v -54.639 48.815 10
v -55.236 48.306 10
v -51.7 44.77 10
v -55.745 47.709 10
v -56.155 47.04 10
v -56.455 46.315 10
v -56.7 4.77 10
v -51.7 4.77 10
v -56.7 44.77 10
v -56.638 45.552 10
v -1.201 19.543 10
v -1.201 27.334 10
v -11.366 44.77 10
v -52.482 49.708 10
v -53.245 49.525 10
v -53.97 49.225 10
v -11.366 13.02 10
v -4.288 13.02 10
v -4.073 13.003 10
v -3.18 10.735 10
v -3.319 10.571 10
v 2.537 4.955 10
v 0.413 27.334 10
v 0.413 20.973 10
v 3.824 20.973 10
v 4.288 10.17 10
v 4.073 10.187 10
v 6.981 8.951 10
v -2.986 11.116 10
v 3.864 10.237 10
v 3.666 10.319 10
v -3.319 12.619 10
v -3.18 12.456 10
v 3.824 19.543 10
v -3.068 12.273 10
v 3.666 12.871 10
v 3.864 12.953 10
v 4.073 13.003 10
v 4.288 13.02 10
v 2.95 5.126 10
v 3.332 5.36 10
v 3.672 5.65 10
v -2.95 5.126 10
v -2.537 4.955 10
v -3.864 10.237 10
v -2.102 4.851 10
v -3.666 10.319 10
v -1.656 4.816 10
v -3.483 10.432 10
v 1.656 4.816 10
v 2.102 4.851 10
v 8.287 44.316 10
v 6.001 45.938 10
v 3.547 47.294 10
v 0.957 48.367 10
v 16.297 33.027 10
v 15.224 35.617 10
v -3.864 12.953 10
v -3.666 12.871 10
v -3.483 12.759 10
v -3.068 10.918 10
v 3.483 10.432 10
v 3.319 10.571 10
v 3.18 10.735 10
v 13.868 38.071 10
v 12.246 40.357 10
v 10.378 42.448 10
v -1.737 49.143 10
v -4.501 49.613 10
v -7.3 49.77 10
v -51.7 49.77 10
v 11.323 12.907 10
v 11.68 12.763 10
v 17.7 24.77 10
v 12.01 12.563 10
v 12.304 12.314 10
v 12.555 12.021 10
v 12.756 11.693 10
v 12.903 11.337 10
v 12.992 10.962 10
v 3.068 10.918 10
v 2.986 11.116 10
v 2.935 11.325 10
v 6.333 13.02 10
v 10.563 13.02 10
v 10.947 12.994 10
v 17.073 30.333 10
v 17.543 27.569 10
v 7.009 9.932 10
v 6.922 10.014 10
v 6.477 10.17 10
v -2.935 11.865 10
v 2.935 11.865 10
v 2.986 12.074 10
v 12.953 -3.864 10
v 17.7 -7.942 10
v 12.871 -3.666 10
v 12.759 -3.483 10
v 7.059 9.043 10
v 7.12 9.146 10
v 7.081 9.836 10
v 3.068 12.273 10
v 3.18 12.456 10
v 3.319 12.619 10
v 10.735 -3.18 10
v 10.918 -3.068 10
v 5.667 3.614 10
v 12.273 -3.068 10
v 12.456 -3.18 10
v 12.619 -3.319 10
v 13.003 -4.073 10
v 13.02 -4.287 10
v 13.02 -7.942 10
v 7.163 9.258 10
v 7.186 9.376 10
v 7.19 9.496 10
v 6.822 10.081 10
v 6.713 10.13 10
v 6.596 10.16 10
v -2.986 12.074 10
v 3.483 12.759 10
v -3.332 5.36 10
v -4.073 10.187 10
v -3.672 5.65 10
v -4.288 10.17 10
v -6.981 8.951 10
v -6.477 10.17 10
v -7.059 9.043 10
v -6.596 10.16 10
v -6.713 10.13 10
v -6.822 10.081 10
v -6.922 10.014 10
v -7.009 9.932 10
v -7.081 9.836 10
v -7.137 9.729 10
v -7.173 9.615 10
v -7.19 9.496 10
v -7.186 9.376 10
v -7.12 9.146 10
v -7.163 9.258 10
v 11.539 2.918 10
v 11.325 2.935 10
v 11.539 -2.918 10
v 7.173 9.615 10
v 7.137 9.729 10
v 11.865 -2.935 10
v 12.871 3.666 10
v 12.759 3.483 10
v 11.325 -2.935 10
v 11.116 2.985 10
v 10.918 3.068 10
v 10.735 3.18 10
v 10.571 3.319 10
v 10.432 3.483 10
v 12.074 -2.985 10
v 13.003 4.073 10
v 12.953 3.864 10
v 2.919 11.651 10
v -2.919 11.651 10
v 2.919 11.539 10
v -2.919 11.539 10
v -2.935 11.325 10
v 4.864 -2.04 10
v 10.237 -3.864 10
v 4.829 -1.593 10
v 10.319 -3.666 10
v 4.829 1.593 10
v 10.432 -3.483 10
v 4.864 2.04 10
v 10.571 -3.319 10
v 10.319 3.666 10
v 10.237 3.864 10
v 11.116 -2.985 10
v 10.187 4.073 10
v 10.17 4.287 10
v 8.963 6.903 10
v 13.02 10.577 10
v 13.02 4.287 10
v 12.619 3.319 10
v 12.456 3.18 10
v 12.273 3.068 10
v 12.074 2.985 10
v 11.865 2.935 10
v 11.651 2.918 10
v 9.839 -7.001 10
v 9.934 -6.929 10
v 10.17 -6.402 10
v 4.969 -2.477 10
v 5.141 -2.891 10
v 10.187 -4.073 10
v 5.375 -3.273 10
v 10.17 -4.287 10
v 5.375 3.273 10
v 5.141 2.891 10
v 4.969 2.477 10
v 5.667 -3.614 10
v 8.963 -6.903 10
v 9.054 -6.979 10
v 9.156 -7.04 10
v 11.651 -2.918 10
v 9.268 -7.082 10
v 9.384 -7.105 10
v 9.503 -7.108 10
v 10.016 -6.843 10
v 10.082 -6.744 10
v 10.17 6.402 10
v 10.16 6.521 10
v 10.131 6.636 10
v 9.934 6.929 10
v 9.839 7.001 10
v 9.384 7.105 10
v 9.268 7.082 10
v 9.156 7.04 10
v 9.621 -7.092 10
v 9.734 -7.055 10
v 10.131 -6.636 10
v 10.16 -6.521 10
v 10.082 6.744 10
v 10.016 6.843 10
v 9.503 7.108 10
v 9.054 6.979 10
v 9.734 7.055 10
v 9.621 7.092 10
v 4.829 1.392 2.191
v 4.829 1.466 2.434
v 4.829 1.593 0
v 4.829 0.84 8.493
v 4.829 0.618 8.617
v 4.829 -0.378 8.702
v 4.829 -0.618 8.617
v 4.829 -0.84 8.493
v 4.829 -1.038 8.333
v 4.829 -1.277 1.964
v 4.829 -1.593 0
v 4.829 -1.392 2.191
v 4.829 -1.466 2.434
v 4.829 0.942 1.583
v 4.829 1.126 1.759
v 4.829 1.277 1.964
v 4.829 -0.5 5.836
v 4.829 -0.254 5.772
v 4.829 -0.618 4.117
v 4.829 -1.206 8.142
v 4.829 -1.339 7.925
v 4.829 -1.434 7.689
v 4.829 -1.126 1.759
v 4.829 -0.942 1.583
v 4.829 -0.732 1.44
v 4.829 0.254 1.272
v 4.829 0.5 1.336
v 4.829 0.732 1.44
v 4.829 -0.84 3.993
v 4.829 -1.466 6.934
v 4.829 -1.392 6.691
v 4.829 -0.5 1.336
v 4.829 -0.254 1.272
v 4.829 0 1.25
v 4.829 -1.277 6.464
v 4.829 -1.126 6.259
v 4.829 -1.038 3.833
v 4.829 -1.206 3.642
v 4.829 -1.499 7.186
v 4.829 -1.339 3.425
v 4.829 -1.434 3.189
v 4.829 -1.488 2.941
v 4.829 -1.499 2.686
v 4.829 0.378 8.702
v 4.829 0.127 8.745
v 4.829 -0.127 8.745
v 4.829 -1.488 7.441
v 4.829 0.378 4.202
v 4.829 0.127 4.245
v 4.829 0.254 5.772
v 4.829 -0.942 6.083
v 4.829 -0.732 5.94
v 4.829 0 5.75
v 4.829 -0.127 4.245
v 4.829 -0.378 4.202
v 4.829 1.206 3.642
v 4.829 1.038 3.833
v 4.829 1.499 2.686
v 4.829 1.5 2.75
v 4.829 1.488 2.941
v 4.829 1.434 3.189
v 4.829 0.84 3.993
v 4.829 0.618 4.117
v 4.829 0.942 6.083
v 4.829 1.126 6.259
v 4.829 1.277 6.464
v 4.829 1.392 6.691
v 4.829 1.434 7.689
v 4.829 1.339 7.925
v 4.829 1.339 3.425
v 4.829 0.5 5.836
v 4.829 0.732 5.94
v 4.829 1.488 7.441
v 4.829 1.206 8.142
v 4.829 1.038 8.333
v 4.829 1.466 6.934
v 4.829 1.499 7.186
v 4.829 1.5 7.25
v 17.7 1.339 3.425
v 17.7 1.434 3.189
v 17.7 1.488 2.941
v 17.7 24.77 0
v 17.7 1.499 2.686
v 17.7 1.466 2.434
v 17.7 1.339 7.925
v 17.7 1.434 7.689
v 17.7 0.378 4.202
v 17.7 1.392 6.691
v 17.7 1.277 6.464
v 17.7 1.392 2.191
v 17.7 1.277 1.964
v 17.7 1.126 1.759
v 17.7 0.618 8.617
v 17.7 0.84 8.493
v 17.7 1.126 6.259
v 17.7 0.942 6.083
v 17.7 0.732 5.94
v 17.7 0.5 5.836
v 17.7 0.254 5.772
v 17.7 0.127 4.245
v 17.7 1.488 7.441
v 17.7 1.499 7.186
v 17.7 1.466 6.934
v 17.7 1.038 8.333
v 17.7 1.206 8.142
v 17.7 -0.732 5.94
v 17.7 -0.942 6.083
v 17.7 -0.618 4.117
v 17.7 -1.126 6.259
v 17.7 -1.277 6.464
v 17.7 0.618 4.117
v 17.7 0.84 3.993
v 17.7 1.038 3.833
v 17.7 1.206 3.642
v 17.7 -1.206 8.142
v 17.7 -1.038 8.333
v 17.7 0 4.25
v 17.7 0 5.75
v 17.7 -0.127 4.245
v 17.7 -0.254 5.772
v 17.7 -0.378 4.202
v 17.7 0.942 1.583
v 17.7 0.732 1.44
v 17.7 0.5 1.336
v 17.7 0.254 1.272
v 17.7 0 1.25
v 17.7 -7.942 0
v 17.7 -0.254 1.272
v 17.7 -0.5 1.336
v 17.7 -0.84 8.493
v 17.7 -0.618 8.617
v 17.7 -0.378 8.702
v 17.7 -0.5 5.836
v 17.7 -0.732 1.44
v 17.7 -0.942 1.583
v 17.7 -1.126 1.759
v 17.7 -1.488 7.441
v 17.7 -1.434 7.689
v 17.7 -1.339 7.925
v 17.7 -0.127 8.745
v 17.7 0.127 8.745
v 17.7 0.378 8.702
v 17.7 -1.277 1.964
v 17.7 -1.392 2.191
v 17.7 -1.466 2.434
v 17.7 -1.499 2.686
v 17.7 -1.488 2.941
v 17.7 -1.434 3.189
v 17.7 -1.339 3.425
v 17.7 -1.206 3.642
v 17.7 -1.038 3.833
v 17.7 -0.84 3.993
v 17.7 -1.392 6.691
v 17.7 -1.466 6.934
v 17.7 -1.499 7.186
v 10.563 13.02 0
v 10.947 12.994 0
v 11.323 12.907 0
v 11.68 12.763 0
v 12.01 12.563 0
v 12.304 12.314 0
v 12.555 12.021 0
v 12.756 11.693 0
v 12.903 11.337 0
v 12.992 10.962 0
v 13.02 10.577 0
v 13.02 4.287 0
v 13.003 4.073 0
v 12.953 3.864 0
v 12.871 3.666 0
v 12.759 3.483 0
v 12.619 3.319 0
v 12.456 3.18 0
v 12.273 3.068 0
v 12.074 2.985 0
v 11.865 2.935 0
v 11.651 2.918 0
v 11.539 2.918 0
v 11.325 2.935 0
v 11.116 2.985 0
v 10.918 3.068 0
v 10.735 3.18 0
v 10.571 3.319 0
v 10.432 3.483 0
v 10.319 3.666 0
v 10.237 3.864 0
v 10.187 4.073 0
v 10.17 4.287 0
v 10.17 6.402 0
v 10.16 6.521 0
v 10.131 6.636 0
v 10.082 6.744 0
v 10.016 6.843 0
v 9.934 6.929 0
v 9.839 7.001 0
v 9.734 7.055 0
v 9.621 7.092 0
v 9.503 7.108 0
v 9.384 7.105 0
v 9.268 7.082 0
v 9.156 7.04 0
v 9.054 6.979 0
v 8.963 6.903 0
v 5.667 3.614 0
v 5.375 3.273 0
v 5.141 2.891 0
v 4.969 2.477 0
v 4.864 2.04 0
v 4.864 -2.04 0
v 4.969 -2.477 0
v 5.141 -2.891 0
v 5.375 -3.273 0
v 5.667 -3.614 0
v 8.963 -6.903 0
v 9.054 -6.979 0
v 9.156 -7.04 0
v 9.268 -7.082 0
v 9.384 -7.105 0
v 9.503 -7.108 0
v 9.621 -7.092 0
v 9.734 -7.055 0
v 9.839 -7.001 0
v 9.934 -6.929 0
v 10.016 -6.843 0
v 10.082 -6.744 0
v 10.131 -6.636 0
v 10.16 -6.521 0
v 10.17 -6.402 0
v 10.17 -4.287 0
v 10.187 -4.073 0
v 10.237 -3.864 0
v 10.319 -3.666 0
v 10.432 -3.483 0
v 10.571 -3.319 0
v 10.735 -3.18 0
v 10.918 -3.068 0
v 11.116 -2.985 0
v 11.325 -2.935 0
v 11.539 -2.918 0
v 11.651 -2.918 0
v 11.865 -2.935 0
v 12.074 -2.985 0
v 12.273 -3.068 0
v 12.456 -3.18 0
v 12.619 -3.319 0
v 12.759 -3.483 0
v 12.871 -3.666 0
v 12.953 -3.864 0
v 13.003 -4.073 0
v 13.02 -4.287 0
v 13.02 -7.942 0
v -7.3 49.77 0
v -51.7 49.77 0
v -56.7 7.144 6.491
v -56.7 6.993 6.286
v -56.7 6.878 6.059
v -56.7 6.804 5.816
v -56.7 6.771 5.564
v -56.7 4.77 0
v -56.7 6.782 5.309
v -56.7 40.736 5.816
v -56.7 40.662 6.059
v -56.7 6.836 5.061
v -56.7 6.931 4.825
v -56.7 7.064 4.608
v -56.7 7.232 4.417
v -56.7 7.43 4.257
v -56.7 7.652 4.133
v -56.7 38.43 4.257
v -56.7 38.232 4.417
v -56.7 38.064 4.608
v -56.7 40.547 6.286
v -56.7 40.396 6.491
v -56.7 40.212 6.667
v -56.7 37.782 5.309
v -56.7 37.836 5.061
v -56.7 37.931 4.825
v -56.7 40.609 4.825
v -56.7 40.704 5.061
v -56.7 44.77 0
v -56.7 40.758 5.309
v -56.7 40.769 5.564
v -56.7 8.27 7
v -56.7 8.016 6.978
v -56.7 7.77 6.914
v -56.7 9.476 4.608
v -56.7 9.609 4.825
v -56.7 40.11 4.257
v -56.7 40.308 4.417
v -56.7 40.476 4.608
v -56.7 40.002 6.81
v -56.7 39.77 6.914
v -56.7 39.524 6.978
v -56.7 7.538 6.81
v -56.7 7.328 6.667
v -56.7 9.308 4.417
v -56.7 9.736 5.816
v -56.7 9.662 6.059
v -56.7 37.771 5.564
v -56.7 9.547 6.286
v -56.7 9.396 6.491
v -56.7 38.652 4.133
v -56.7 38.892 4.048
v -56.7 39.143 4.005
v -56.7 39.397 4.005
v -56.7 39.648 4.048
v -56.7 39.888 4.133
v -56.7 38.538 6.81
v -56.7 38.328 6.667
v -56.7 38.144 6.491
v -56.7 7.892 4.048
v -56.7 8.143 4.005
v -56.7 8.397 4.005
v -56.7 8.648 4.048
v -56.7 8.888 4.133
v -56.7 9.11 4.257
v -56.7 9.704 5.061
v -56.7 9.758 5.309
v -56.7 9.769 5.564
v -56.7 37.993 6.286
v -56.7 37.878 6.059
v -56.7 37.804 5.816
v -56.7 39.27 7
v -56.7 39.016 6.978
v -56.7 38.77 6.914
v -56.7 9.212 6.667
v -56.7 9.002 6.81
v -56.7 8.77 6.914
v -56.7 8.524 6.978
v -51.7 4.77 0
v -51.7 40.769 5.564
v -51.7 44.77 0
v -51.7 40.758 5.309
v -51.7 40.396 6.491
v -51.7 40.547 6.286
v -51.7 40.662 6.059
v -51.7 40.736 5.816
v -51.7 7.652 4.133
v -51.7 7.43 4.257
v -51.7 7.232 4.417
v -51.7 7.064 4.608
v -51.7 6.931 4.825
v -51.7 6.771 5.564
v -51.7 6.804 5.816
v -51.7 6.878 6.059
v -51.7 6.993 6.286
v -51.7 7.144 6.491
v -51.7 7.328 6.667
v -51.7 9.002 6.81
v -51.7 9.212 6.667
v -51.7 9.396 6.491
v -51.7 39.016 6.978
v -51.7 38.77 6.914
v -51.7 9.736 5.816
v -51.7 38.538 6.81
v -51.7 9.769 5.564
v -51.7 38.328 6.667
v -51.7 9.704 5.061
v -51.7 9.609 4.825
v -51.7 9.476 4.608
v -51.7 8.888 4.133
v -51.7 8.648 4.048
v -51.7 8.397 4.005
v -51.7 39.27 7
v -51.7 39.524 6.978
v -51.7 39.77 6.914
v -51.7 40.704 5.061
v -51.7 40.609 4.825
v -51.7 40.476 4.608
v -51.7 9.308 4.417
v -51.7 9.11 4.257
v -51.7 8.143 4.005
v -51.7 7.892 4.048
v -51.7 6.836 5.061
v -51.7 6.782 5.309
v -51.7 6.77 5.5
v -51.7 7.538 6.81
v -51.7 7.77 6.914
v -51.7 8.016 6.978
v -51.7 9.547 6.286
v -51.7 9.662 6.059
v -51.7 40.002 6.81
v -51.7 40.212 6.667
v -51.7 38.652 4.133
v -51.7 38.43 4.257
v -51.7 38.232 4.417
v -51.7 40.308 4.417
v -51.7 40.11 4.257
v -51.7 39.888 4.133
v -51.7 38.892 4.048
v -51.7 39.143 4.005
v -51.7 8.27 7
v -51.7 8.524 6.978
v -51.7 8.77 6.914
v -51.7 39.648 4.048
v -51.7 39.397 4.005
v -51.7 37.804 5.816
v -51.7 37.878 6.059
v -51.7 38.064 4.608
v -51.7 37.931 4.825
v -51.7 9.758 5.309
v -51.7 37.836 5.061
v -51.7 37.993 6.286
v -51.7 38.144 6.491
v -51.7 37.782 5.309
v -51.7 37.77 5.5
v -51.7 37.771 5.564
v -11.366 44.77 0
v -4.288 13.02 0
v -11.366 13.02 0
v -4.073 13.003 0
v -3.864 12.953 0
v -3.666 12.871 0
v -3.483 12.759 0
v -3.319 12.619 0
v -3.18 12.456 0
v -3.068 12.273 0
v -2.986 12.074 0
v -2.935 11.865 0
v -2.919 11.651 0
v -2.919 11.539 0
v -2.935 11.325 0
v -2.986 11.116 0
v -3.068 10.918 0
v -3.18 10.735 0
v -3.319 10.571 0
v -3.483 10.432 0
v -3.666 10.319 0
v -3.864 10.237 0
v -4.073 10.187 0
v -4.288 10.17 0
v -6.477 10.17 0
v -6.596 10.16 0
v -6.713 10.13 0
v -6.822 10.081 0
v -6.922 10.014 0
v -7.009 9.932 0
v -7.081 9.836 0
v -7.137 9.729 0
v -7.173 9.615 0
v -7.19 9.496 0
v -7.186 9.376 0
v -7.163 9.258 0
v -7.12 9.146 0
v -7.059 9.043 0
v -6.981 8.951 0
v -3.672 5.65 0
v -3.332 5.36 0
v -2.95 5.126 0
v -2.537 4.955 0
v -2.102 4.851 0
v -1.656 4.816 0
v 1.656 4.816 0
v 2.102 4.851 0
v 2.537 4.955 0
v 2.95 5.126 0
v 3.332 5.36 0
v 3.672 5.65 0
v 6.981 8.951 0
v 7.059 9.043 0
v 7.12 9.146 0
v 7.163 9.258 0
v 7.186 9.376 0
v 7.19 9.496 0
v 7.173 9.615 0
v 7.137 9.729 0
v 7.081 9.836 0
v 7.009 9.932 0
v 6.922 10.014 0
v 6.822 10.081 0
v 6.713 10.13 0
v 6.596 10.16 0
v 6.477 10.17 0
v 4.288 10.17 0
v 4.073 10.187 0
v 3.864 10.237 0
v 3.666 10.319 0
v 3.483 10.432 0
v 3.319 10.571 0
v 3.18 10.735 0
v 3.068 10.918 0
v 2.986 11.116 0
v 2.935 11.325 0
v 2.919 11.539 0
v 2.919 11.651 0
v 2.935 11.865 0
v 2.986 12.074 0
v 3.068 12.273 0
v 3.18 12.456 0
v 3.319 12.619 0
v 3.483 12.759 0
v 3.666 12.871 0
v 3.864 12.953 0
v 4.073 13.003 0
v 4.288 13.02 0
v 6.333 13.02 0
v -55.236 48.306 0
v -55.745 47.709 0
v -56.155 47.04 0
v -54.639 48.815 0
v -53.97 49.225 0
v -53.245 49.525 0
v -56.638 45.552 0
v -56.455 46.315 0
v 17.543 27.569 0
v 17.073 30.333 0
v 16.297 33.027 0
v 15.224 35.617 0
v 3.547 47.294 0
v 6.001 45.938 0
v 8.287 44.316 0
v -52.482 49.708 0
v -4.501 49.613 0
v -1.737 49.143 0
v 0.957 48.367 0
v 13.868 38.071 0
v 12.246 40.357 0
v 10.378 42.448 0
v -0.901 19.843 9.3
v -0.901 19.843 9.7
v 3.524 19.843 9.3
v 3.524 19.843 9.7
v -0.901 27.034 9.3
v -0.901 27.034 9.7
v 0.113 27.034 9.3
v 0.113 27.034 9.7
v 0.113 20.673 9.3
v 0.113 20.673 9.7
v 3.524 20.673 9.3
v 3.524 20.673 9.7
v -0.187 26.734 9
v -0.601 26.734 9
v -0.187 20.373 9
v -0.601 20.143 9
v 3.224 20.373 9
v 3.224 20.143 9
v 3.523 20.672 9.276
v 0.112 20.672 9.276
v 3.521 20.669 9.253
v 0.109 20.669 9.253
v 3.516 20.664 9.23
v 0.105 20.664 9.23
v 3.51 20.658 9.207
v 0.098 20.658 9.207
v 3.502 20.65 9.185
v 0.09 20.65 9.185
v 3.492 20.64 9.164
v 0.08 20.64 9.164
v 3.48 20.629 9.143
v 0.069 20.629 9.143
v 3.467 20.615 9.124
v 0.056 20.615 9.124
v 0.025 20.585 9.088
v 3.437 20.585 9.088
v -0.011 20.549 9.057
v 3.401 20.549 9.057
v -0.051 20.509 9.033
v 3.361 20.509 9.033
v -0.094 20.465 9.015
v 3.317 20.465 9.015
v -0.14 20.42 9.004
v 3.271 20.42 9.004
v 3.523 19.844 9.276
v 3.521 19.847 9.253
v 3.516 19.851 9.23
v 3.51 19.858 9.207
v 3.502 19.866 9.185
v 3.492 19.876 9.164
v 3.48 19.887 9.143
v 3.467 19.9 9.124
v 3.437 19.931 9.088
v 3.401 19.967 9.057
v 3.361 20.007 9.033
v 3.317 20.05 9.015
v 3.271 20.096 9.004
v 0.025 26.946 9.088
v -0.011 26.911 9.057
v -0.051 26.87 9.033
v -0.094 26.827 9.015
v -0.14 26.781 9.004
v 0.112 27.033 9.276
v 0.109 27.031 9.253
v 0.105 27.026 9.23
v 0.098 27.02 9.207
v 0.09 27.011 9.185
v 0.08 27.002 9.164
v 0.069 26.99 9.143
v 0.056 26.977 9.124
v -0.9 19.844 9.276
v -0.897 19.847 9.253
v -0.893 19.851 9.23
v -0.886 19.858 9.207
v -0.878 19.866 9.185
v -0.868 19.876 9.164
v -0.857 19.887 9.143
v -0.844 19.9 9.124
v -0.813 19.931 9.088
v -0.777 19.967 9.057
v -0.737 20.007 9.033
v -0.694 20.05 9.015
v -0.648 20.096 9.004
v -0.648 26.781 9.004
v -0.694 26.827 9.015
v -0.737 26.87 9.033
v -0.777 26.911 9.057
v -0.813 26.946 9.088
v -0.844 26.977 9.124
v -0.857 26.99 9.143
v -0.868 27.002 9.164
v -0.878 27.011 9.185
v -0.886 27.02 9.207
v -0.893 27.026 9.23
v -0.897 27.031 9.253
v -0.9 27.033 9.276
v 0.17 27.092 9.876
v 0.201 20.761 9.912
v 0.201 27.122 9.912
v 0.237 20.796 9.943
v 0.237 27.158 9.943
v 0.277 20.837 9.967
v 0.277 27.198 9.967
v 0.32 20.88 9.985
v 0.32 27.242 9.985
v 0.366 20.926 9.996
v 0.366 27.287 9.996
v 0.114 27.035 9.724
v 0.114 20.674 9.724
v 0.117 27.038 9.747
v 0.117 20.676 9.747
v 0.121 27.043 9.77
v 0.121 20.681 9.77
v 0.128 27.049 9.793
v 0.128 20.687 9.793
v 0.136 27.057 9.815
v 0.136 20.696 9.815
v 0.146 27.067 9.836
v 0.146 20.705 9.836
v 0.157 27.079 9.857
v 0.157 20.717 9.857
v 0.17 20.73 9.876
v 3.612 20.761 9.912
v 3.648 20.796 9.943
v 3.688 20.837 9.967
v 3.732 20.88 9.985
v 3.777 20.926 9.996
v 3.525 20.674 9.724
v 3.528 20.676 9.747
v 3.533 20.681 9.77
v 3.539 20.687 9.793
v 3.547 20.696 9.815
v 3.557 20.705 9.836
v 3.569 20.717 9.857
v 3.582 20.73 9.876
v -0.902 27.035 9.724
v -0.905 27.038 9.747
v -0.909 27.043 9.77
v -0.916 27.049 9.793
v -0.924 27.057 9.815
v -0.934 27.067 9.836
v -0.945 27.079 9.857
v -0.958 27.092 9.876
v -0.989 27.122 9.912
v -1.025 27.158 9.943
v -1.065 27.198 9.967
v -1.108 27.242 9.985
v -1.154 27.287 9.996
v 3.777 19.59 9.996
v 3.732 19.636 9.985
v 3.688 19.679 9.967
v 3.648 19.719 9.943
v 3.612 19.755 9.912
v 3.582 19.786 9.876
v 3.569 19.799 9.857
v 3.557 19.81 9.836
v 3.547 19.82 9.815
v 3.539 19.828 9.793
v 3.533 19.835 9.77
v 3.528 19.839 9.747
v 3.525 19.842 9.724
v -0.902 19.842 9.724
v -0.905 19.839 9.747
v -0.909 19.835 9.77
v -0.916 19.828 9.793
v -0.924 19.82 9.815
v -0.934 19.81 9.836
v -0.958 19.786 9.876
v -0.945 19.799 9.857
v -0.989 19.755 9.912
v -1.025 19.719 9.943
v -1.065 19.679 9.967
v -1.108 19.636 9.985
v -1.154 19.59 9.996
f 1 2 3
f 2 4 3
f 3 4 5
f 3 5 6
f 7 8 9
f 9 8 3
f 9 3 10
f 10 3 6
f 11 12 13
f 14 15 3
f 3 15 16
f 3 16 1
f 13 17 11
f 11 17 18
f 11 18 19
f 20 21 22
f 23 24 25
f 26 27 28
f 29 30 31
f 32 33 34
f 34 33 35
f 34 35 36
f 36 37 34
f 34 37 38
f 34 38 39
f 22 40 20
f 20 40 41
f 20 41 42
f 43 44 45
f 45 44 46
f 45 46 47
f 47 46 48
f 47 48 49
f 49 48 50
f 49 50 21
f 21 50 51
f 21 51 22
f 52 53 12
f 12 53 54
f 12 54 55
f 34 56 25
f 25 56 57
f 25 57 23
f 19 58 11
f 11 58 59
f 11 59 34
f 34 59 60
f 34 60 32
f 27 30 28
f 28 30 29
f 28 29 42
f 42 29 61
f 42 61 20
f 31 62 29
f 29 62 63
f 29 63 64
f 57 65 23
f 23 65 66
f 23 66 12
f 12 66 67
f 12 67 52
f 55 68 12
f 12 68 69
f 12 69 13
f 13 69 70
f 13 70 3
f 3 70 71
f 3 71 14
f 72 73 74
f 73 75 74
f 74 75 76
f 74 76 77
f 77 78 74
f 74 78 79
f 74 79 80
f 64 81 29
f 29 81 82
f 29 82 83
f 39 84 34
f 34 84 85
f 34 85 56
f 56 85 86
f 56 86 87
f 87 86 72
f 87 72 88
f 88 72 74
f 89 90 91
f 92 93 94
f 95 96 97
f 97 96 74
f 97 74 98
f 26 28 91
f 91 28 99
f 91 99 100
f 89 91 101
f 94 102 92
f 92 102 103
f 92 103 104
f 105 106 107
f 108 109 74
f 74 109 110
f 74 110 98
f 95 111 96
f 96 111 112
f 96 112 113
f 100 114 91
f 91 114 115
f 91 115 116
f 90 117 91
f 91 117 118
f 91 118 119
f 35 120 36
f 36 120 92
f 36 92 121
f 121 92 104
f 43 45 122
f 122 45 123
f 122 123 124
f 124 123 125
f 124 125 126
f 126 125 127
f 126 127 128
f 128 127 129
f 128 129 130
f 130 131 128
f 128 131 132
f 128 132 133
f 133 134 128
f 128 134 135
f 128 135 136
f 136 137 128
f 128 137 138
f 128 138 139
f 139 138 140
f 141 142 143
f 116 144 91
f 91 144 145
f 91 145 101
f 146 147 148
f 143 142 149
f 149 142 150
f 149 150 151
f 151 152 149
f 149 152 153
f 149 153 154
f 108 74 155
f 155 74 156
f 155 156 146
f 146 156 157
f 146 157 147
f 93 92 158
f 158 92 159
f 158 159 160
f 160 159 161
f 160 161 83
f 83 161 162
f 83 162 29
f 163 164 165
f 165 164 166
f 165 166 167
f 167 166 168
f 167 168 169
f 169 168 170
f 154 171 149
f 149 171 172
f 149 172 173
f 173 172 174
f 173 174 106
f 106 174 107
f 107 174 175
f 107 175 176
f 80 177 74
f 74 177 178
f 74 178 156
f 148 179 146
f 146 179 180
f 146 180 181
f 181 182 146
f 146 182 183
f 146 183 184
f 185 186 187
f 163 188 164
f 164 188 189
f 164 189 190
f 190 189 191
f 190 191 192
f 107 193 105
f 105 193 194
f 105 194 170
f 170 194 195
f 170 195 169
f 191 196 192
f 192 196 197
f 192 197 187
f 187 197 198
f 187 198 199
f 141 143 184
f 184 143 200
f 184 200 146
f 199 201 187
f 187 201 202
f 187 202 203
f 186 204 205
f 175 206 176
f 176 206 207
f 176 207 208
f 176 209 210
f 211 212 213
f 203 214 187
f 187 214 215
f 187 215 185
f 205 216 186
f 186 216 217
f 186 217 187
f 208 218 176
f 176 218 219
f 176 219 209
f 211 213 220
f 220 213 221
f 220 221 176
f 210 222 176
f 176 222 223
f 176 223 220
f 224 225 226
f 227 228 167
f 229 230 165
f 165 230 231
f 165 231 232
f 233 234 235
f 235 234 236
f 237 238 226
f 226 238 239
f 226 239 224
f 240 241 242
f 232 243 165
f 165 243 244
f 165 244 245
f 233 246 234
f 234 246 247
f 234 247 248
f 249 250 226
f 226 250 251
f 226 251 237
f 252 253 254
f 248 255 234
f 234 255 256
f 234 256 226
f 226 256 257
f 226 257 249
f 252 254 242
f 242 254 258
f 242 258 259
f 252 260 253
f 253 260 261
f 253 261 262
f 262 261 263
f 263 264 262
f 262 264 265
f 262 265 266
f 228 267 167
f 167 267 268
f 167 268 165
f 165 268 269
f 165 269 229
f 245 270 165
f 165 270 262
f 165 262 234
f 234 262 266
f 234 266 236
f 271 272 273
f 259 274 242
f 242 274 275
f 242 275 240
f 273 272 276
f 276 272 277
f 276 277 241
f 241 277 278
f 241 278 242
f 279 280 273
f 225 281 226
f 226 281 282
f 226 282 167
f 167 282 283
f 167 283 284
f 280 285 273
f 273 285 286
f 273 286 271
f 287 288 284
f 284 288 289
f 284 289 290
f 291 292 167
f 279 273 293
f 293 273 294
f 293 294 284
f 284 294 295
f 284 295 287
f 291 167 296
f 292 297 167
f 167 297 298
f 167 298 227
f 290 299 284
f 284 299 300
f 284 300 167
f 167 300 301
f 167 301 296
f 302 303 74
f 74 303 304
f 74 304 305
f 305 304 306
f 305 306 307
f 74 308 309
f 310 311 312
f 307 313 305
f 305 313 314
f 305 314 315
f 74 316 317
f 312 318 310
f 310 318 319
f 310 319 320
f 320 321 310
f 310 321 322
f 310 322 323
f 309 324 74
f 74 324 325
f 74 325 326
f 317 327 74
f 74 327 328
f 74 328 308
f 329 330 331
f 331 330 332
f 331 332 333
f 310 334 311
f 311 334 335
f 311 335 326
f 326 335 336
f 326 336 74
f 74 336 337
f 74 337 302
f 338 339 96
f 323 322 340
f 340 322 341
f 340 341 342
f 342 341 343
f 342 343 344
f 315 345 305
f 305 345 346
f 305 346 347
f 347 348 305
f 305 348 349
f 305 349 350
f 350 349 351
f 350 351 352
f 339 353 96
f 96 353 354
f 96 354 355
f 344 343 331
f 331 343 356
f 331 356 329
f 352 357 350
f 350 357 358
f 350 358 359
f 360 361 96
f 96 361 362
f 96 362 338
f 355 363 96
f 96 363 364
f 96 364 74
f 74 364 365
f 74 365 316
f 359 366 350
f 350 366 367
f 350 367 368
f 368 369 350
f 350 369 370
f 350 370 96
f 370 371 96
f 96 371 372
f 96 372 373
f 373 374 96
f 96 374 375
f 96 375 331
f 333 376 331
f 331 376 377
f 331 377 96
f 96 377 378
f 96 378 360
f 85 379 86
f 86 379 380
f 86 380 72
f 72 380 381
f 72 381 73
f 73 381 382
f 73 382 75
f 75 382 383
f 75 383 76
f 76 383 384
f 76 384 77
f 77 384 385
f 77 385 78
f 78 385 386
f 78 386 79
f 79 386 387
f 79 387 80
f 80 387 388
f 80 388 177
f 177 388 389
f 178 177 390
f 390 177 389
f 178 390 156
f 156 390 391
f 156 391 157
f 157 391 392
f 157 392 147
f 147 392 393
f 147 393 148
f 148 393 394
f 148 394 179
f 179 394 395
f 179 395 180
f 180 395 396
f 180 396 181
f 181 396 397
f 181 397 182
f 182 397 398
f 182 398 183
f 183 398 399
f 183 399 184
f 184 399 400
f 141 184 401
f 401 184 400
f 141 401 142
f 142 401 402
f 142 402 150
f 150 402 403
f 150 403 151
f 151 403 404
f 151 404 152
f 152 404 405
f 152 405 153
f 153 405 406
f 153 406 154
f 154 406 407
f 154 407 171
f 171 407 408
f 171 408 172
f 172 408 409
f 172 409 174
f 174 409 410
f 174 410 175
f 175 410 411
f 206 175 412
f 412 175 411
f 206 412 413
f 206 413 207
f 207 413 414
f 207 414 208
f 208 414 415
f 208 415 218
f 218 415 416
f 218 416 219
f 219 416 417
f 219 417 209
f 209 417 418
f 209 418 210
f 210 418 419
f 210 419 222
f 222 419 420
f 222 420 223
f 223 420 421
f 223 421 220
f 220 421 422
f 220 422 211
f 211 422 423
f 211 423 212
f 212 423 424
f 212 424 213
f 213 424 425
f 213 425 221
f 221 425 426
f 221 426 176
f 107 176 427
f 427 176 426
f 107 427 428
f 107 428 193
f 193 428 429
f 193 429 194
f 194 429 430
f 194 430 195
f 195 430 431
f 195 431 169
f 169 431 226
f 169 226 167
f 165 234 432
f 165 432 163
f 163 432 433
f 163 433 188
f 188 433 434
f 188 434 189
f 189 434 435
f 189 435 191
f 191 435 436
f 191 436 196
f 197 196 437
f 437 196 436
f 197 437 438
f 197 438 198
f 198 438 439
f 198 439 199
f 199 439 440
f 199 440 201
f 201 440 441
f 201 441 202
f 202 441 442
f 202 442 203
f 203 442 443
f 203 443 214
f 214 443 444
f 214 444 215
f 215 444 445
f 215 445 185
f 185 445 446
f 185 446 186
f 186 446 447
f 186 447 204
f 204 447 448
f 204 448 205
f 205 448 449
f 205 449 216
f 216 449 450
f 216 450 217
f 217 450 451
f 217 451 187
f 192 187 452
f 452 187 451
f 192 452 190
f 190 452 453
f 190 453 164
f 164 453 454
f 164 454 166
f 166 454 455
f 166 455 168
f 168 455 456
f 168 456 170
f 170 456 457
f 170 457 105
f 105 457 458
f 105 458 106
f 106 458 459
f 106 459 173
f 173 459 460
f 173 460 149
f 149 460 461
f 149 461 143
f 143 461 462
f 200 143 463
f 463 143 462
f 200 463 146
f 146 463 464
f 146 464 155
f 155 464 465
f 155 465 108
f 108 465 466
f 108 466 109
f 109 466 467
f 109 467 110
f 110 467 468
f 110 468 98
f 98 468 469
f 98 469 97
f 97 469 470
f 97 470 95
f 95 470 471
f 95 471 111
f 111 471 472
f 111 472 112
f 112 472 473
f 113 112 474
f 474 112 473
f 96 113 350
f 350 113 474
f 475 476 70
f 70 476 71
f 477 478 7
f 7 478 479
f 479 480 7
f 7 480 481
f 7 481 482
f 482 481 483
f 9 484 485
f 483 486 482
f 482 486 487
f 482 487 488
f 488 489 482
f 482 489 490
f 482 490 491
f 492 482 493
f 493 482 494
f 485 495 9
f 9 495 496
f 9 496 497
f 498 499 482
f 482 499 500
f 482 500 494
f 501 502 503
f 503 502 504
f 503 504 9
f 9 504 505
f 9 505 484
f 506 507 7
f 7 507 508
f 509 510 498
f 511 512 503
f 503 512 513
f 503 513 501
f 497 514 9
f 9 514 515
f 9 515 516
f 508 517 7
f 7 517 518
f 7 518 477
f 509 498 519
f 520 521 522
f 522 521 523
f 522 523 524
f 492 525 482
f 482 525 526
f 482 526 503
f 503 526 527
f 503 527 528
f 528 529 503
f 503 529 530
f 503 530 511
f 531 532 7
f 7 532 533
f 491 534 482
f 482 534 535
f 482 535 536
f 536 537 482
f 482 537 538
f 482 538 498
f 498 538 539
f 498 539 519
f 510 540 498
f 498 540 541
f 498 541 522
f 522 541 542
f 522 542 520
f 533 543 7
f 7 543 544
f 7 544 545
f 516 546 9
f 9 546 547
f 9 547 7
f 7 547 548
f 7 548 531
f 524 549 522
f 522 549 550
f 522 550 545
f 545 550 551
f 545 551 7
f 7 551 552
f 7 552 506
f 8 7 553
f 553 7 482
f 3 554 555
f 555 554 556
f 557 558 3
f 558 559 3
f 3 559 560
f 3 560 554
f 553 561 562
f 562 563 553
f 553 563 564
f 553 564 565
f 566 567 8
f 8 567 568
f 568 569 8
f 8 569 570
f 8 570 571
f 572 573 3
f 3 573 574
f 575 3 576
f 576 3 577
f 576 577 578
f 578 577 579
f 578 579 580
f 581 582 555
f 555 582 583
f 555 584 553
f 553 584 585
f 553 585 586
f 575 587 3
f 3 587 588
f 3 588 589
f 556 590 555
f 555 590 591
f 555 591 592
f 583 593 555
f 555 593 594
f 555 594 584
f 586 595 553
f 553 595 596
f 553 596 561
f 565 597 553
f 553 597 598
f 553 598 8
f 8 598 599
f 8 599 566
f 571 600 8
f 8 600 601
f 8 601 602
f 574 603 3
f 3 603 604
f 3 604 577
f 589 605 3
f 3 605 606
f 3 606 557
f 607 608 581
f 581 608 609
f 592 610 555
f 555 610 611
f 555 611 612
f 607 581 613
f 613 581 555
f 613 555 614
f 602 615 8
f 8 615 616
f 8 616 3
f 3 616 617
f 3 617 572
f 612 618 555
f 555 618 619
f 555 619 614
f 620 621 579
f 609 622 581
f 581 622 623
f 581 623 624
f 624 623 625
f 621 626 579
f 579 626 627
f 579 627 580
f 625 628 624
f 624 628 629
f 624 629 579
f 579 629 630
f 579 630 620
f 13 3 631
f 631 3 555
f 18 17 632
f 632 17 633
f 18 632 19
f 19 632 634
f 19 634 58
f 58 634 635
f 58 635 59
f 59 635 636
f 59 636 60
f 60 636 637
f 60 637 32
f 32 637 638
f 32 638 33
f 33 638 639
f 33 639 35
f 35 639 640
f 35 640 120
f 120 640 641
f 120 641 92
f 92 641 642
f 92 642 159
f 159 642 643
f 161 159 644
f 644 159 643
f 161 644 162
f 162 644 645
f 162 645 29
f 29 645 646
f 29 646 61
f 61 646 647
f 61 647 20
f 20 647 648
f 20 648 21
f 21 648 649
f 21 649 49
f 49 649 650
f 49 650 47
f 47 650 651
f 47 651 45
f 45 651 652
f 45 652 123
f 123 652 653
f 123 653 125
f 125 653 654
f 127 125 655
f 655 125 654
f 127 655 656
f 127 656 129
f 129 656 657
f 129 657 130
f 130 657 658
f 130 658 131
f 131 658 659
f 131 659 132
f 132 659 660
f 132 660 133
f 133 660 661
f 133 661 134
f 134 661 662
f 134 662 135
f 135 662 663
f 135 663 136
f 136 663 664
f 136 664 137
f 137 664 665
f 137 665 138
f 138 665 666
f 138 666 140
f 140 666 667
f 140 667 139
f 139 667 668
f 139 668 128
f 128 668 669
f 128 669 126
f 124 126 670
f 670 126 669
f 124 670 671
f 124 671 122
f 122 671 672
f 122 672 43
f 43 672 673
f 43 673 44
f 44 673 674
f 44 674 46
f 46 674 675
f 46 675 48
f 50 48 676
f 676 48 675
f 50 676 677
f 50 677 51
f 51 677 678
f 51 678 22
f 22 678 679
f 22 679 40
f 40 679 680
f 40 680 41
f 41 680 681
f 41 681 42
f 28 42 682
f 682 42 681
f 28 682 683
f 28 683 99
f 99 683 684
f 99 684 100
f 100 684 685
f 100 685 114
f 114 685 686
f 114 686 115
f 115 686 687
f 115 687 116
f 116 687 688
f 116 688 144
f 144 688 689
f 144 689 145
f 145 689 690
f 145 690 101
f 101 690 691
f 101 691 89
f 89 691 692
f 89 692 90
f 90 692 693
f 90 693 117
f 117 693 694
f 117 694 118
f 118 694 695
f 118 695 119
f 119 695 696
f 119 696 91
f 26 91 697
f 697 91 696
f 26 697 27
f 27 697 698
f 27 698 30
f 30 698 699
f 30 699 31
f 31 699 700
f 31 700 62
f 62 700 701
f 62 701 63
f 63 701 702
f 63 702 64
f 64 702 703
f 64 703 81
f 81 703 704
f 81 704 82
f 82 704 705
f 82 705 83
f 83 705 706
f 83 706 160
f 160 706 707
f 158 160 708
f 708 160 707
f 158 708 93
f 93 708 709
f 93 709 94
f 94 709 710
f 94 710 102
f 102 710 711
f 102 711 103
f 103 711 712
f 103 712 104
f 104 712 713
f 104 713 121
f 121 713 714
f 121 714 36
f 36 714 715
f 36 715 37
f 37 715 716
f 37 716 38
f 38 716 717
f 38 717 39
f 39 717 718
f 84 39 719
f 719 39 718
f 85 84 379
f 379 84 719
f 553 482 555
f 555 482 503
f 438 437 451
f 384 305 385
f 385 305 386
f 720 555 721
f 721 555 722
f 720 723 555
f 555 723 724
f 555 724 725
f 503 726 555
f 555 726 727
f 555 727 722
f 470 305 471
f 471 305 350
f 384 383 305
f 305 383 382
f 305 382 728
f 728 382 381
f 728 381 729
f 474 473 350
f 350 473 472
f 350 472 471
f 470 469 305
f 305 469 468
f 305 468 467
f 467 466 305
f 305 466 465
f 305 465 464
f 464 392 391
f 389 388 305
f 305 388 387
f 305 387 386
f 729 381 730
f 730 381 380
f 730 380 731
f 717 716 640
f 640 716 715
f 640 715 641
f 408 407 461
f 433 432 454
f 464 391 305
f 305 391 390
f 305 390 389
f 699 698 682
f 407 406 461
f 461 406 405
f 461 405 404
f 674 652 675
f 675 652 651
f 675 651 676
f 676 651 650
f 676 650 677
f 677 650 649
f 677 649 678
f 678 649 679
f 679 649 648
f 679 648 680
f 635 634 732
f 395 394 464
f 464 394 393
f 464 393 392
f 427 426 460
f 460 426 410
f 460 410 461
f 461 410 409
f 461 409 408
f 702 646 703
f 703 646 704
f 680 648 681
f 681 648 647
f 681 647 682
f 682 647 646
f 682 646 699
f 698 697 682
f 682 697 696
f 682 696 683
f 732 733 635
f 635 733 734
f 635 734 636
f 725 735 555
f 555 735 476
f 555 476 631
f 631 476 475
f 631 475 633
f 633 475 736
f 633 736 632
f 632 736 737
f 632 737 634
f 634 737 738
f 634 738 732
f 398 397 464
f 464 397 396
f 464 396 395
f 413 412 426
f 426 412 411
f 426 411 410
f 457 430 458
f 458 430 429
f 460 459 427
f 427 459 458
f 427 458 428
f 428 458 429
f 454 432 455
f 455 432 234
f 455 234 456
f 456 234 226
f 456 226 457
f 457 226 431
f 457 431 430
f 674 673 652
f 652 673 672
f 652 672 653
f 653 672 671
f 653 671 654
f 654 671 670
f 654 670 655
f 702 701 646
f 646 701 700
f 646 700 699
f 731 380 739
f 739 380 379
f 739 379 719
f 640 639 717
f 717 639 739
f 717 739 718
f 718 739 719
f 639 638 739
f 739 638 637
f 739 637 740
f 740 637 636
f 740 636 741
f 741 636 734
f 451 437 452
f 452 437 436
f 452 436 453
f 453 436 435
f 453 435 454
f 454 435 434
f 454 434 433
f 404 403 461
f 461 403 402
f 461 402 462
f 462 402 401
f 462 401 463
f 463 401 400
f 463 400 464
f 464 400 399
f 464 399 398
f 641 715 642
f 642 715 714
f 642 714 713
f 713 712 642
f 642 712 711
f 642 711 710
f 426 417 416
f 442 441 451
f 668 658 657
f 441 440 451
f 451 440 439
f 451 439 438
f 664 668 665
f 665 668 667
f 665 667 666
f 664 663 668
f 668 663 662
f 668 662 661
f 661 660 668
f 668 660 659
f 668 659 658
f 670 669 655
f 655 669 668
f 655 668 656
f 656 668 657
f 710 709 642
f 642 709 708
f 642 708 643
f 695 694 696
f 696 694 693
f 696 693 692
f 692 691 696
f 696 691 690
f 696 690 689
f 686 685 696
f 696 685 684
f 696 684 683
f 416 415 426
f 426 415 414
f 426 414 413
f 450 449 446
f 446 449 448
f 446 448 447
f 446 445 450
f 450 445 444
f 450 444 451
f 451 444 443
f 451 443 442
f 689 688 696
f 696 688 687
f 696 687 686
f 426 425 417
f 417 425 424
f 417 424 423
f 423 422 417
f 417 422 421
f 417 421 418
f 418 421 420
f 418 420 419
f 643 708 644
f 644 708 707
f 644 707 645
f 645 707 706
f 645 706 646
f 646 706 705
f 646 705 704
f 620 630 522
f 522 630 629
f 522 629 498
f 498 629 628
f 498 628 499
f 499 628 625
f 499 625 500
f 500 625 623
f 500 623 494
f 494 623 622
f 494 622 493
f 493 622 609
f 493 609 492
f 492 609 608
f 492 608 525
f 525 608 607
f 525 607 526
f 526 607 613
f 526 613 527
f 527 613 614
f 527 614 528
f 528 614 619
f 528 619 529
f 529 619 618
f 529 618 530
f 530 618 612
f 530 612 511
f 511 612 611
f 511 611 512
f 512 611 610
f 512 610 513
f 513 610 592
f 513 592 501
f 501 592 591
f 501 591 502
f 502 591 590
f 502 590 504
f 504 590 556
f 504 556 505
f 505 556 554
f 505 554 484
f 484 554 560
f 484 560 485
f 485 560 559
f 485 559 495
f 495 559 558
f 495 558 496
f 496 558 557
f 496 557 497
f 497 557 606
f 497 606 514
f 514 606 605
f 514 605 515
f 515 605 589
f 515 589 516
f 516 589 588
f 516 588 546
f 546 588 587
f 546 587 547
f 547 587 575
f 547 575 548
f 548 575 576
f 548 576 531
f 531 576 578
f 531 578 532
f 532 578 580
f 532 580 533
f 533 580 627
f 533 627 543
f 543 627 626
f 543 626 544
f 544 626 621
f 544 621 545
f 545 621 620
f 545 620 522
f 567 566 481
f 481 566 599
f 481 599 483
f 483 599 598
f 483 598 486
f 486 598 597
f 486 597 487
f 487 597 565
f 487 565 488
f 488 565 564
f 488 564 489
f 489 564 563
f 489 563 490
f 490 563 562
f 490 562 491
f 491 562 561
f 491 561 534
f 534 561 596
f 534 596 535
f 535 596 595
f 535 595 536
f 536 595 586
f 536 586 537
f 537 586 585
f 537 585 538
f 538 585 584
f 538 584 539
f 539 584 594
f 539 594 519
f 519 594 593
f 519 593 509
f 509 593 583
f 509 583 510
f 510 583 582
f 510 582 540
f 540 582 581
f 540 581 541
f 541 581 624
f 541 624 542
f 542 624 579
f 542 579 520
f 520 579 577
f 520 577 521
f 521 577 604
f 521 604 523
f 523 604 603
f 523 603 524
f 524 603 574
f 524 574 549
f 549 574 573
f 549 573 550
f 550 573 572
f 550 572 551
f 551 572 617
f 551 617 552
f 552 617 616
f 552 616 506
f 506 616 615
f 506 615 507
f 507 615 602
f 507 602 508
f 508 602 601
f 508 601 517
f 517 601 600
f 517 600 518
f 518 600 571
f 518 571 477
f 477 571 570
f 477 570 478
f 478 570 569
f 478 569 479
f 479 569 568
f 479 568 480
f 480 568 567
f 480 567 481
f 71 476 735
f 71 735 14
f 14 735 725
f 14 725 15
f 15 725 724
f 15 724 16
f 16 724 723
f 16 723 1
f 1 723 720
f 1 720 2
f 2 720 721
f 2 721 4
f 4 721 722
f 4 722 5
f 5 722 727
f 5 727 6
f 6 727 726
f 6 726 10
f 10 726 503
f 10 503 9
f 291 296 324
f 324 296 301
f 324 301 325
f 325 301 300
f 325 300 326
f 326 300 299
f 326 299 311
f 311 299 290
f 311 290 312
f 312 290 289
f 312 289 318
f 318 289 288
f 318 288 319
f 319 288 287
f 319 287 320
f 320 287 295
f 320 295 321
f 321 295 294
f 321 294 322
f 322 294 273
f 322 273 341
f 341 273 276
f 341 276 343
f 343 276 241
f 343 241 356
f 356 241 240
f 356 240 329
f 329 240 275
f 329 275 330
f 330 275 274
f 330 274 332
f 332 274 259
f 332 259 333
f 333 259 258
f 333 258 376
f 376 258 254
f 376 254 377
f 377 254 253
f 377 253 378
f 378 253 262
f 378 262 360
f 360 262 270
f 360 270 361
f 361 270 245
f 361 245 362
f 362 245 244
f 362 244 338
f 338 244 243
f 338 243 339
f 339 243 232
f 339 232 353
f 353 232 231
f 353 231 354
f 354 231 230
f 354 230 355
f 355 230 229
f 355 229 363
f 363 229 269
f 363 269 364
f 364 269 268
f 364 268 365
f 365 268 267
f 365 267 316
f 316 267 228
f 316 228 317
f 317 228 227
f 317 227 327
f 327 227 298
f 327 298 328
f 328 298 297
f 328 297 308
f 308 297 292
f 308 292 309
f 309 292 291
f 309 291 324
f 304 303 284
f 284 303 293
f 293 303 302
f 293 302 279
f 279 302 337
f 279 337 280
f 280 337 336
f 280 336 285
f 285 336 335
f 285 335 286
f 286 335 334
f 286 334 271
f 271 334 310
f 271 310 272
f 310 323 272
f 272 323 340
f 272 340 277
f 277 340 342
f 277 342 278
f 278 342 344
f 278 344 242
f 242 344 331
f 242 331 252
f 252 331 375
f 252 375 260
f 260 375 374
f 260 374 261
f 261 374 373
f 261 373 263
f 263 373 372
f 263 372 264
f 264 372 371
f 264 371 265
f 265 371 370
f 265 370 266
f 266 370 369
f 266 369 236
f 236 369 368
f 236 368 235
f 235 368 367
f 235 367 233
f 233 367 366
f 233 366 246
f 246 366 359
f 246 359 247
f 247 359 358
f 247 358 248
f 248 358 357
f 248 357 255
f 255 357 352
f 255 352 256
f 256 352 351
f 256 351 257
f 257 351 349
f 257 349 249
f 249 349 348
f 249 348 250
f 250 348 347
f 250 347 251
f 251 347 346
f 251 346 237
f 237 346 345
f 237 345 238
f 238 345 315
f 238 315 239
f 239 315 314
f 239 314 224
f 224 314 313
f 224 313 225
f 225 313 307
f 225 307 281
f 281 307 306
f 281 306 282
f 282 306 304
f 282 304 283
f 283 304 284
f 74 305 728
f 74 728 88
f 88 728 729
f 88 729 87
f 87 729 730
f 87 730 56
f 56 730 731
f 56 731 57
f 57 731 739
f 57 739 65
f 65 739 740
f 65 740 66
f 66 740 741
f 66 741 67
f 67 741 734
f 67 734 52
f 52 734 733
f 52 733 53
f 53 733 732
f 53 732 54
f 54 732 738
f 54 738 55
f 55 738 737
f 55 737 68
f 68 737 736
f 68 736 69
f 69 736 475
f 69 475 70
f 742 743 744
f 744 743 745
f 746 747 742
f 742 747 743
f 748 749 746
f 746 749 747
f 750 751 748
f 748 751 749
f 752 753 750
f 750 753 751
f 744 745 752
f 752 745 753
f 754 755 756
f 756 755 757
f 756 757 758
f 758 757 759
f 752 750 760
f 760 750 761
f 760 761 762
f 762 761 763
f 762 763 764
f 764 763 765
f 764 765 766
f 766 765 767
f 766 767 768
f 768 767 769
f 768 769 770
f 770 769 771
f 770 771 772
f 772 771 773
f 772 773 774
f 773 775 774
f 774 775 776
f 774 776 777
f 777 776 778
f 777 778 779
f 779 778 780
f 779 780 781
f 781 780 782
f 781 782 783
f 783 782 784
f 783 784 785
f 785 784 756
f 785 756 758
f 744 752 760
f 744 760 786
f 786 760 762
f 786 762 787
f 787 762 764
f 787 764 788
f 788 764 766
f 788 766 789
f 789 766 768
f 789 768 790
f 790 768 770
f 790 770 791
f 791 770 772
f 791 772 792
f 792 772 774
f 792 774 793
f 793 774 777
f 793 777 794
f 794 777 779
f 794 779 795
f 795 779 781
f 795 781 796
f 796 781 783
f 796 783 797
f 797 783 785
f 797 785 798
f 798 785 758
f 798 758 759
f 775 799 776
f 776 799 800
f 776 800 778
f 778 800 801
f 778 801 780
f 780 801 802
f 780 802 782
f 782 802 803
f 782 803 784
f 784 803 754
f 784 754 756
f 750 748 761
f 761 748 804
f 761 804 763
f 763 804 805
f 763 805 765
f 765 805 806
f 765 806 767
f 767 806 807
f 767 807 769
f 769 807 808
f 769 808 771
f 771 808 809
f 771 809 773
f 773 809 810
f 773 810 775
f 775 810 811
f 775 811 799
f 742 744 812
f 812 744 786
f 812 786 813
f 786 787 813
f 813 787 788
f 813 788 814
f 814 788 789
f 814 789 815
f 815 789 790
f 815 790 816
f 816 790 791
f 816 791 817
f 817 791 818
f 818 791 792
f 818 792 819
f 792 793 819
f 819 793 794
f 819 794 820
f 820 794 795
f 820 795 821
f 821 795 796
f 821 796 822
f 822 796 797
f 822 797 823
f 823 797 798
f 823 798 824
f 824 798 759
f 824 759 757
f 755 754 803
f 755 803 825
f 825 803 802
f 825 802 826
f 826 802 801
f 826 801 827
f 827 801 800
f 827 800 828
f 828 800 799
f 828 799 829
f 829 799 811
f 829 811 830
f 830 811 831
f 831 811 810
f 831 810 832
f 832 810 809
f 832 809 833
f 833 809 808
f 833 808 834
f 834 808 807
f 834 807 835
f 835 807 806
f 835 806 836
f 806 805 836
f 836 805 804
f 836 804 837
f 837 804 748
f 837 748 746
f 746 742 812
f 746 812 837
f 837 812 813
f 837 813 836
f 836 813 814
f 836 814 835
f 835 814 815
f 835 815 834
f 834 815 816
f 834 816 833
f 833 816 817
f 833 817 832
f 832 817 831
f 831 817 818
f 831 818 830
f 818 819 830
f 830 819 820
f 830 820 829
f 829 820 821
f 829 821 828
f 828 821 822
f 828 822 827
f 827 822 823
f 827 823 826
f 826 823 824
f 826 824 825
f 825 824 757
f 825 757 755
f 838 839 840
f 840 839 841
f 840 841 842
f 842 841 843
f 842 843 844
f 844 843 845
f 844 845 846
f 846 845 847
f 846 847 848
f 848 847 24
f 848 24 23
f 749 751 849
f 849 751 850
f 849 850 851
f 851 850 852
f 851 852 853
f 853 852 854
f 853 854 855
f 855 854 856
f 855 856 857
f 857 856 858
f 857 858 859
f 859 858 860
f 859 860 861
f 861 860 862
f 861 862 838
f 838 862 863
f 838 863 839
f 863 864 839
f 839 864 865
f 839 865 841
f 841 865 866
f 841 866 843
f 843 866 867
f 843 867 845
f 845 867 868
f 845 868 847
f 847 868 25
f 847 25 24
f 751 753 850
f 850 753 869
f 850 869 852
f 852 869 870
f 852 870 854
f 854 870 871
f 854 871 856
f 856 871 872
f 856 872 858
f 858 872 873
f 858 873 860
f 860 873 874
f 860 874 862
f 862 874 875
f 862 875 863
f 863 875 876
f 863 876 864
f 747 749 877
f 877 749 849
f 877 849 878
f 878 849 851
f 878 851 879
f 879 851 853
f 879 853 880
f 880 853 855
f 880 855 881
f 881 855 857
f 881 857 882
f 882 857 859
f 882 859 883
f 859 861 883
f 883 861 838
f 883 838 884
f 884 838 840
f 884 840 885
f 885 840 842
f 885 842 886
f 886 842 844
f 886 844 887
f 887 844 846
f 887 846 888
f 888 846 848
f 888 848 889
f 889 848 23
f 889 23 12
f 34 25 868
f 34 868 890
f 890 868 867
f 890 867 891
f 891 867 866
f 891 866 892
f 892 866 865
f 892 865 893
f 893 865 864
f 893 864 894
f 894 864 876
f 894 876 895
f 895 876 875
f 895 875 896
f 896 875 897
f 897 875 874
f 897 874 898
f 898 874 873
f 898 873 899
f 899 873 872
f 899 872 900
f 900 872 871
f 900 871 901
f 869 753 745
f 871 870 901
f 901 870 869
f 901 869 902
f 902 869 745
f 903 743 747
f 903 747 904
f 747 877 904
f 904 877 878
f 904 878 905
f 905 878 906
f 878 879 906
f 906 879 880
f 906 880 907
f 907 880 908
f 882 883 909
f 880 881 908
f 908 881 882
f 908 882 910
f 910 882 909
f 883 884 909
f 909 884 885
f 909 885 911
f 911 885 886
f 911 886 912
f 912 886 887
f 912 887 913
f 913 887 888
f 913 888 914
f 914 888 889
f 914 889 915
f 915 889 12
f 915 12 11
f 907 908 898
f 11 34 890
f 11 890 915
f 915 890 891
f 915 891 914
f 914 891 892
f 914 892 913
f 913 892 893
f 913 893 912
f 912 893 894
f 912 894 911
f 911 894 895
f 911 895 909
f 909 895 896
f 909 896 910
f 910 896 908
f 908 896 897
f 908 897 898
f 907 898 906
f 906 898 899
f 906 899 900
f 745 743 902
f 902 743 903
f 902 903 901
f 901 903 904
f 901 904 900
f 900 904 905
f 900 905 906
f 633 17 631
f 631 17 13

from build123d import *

# Parameters (mm, degrees)
BOSS_EXTRUDE1_DEPTH = 10
CUT_EXTRUDE1_REACH  = 92.069
SKETCH2_R           = 1.5
FILLET3_R           = 5
CUT_EXTRUDE2_REACH  = 92.069
SKETCH3_R           = 1.5
FILLET4_R           = 25
CUT_EXTRUDE7_DEPTH  = 1
FILLET8_R           = 0.3
SKETCH8_W           = 10
SKETCH8_H           = 31.75
BOSS_EXTRUDE2_DEPTH = 0.8


with BuildPart() as part:
    # Sketch1 → Boss-Extrude1 (new body)
    with BuildSketch(Plane.XY):
        with BuildLine():
            Line((13.02, -7.9417418), (17.7, -7.9417418))
            Line((17.7, -7.9417418), (17.7, 49.77))
            Line((17.7, 49.77), (-56.7, 49.77))
            Line((-56.7, 49.77), (-56.7, 4.77))
            Line((-56.7, 4.77), (-51.7, 4.77))
            Line((-51.7, 4.77), (-51.7, 44.77))
            Line((-51.7, 44.77), (-10.566443095, 44.77))
            Line((-10.566443095, 44.77), (-10.566443095, 13.02))
            Line((-10.566443095, 13.02), (-5.317126718, 13.02))
            Line((-5.317126718, 13.02), (-4.287512407, 13.02))
            ThreePointArc((-4.287512407, 13.02), (-3.319474451, 12.619025549), (-2.9185, 11.650987593))
            Line((-2.9185, 11.650987593), (-2.9185, 11.539212407))
            ThreePointArc((-2.9185, 11.539212407), (-3.319474451, 10.571174451), (-4.287512407, 10.1702))
            Line((-4.287512407, 10.1702), (-6.476788598, 10.1702))
            ThreePointArc((-6.476788598, 10.1702), (-7.136510935, 9.729114651), (-6.981020848, 8.950903446))
            Line((-6.981020848, 8.950903446), (-3.672257405, 5.649701928))
            ThreePointArc((-3.672257405, 5.649701928), (-2.746830644, 5.032499411), (-1.655778399, 4.8158))
            Line((-1.655778399, 4.8158), (1.655778399, 4.8158))
            ThreePointArc((1.655778399, 4.8158), (2.746830644, 5.032499411), (3.672257405, 5.649701928))
            Line((3.672257405, 5.649701928), (6.981020848, 8.950903446))
            ThreePointArc((6.981020848, 8.950903446), (7.136510935, 9.729114651), (6.476788598, 10.1702))
            Line((6.476788598, 10.1702), (4.287512407, 10.1702))
            ThreePointArc((4.287512407, 10.1702), (3.319474451, 10.571174451), (2.9185, 11.539212407))
            Line((2.9185, 11.539212407), (2.9185, 11.650987593))
            ThreePointArc((2.9185, 11.650987593), (3.319474451, 12.619025549), (4.287512407, 13.02))
            Line((4.287512407, 13.02), (6.332886163, 13.02))
            Line((6.332886163, 13.02), (10.562594215, 13.019824354))
            ThreePointArc((10.562594215, 13.019824354), (12.303594776, 12.313982883), (13.019956614, 10.577284622))
            Line((13.019956614, 10.577284622), (13.02, 4.287469289))
            ThreePointArc((13.02, 4.287469289), (12.619025549, 3.319431332), (11.650987593, 2.918456882))
            Line((11.650987593, 2.918456882), (11.539212407, 2.918456882))
            ThreePointArc((11.539212407, 2.918456882), (10.571174451, 3.319431332), (10.1702, 4.287469289))
            Line((10.1702, 4.287469289), (10.1702, 6.402089023))
            ThreePointArc((10.1702, 6.402089023), (9.733877283, 7.055496588), (8.963146507, 6.90287605))
            Line((8.963146507, 6.90287605), (5.667020993, 3.614283579))
            ThreePointArc((5.667020993, 3.614283579), (5.046449321, 2.687255303), (4.8285, 1.593185507))
            Line((4.8285, 1.593185507), (4.8285, -1.593185507))
            ThreePointArc((4.8285, -1.593185507), (5.046449321, -2.687255303), (5.667020993, -3.614283579))
            Line((5.667020993, -3.614283579), (8.963146507, -6.90287605))
            ThreePointArc((8.963146507, -6.90287605), (9.733877283, -7.055496588), (10.1702, -6.402089023))
            Line((10.1702, -6.402089023), (10.1702, -4.287469289))
            ThreePointArc((10.1702, -4.287469289), (10.571174451, -3.319431332), (11.539212407, -2.918456882))
            Line((11.539212407, -2.918456882), (11.650987593, -2.918456882))
            ThreePointArc((11.650987593, -2.918456882), (12.619025549, -3.319431332), (13.02, -4.287469289))
            Line((13.02, -4.287469289), (13.02, -5.3170836))
            Line((13.02, -5.3170836), (13.02, -7.9417418))
        make_face()
    extrude(amount=BOSS_EXTRUDE1_DEPTH)

    # Sketch2 → Cut-Extrude1 (cut, up to next)
    with BuildSketch(Plane.ZY.offset(56.7), mode=Mode.PRIVATE) as cut_extrude1_sk1:
        with Locations((5.5, 8.27)):
            Circle(SKETCH2_R)
    cut_extrude1_tool1 = extrude(cut_extrude1_sk1.sketch, amount=-CUT_EXTRUDE1_REACH, mode=Mode.PRIVATE) & part.part
    # Sketch2 → Cut-Extrude1 (cut, up to next)
    with BuildSketch(Plane.ZY.offset(56.7), mode=Mode.PRIVATE) as cut_extrude1_sk2:
        with Locations((5.5, 39.27)):
            Circle(SKETCH2_R)
    cut_extrude1_tool2 = extrude(cut_extrude1_sk2.sketch, amount=-CUT_EXTRUDE1_REACH, mode=Mode.PRIVATE) & part.part
    add(cut_extrude1_tool1.solids().sort_by_distance((-56.7, 8.27, 5.5))[0], mode=Mode.SUBTRACT)
    add(cut_extrude1_tool2.solids().sort_by_distance((-56.7, 39.27, 5.5))[0], mode=Mode.SUBTRACT)

    # Fillet3
    fillet3_edges = [part.edges().sort_by_distance(p)[0] for p in [
        (-56.7, 49.77, 5),
    ]]
    fillet(fillet3_edges, radius=FILLET3_R)

    # Sketch3 → Cut-Extrude2 (cut, up to next)
    with BuildSketch(Plane(origin=(17.7, 0, 0), x_dir=(0, 0, -1), z_dir=(1, 0, 0)), mode=Mode.PRIVATE) as cut_extrude2_sk1:
        with Locations((-7.25, 0)):
            Circle(SKETCH3_R)
    cut_extrude2_tool1 = extrude(cut_extrude2_sk1.sketch, amount=-CUT_EXTRUDE2_REACH, mode=Mode.PRIVATE) & part.part
    # Sketch3 → Cut-Extrude2 (cut, up to next)
    with BuildSketch(Plane(origin=(17.7, 0, 0), x_dir=(0, 0, -1), z_dir=(1, 0, 0)), mode=Mode.PRIVATE) as cut_extrude2_sk2:
        with Locations(Location((-2.75, 0, 0), (0, 0, 90))):
            Circle(SKETCH3_R)
    cut_extrude2_tool2 = extrude(cut_extrude2_sk2.sketch, amount=-CUT_EXTRUDE2_REACH, mode=Mode.PRIVATE) & part.part
    add(cut_extrude2_tool1.solids().sort_by_distance((17.7, 0, 7.25))[0], mode=Mode.SUBTRACT)
    add(cut_extrude2_tool2.solids().sort_by_distance((17.7, 0, 2.75))[0], mode=Mode.SUBTRACT)

    # Fillet4
    fillet4_edges = [part.edges().sort_by_distance(p)[0] for p in [
        (17.7, 49.77, 5),
    ]]
    fillet(fillet4_edges, radius=FILLET4_R)

    # Sketch7 → Cut-Extrude7 (cut)
    with BuildSketch(Plane.XY.offset(10)):
        Polygon((-0.90100078, 19.84300121), (-0.90100078, 27.034293528), (0.113155829, 27.034293528), (0.113155829, 20.672765708), (3.524409877, 20.672765708), (3.524409877, 19.84300121), align=None)
    extrude(amount=-CUT_EXTRUDE7_DEPTH, mode=Mode.SUBTRACT)

    # Fillet8
    fillet8_edges = [part.edges().sort_by_distance(p)[0] for p in [
        (1.311704549, 19.84300121, 10),
        (-0.90100078, 23.438647369, 10),
        (-0.393922475, 27.034293528, 10),
        (0.113155829, 23.853529618, 10),
        (1.818782853, 20.672765708, 10),
        (3.524409877, 20.257883459, 10),
        (1.311704549, 19.84300121, 9),
        (-0.90100078, 23.438647369, 9),
        (-0.393922475, 27.034293528, 9),
        (0.113155829, 23.853529618, 9),
        (1.818782853, 20.672765708, 9),
        (3.524409877, 20.257883459, 9),
    ]]
    fillet(fillet8_edges, radius=FILLET8_R)

    # Sketch8 → Boss-Extrude2 (add)
    with BuildSketch(Plane.ZY.offset(10.566443095)):
        with Locations((5, 28.895)):
            Rectangle(SKETCH8_W, SKETCH8_H)
    extrude(amount=BOSS_EXTRUDE2_DEPTH)


solid = part.part
